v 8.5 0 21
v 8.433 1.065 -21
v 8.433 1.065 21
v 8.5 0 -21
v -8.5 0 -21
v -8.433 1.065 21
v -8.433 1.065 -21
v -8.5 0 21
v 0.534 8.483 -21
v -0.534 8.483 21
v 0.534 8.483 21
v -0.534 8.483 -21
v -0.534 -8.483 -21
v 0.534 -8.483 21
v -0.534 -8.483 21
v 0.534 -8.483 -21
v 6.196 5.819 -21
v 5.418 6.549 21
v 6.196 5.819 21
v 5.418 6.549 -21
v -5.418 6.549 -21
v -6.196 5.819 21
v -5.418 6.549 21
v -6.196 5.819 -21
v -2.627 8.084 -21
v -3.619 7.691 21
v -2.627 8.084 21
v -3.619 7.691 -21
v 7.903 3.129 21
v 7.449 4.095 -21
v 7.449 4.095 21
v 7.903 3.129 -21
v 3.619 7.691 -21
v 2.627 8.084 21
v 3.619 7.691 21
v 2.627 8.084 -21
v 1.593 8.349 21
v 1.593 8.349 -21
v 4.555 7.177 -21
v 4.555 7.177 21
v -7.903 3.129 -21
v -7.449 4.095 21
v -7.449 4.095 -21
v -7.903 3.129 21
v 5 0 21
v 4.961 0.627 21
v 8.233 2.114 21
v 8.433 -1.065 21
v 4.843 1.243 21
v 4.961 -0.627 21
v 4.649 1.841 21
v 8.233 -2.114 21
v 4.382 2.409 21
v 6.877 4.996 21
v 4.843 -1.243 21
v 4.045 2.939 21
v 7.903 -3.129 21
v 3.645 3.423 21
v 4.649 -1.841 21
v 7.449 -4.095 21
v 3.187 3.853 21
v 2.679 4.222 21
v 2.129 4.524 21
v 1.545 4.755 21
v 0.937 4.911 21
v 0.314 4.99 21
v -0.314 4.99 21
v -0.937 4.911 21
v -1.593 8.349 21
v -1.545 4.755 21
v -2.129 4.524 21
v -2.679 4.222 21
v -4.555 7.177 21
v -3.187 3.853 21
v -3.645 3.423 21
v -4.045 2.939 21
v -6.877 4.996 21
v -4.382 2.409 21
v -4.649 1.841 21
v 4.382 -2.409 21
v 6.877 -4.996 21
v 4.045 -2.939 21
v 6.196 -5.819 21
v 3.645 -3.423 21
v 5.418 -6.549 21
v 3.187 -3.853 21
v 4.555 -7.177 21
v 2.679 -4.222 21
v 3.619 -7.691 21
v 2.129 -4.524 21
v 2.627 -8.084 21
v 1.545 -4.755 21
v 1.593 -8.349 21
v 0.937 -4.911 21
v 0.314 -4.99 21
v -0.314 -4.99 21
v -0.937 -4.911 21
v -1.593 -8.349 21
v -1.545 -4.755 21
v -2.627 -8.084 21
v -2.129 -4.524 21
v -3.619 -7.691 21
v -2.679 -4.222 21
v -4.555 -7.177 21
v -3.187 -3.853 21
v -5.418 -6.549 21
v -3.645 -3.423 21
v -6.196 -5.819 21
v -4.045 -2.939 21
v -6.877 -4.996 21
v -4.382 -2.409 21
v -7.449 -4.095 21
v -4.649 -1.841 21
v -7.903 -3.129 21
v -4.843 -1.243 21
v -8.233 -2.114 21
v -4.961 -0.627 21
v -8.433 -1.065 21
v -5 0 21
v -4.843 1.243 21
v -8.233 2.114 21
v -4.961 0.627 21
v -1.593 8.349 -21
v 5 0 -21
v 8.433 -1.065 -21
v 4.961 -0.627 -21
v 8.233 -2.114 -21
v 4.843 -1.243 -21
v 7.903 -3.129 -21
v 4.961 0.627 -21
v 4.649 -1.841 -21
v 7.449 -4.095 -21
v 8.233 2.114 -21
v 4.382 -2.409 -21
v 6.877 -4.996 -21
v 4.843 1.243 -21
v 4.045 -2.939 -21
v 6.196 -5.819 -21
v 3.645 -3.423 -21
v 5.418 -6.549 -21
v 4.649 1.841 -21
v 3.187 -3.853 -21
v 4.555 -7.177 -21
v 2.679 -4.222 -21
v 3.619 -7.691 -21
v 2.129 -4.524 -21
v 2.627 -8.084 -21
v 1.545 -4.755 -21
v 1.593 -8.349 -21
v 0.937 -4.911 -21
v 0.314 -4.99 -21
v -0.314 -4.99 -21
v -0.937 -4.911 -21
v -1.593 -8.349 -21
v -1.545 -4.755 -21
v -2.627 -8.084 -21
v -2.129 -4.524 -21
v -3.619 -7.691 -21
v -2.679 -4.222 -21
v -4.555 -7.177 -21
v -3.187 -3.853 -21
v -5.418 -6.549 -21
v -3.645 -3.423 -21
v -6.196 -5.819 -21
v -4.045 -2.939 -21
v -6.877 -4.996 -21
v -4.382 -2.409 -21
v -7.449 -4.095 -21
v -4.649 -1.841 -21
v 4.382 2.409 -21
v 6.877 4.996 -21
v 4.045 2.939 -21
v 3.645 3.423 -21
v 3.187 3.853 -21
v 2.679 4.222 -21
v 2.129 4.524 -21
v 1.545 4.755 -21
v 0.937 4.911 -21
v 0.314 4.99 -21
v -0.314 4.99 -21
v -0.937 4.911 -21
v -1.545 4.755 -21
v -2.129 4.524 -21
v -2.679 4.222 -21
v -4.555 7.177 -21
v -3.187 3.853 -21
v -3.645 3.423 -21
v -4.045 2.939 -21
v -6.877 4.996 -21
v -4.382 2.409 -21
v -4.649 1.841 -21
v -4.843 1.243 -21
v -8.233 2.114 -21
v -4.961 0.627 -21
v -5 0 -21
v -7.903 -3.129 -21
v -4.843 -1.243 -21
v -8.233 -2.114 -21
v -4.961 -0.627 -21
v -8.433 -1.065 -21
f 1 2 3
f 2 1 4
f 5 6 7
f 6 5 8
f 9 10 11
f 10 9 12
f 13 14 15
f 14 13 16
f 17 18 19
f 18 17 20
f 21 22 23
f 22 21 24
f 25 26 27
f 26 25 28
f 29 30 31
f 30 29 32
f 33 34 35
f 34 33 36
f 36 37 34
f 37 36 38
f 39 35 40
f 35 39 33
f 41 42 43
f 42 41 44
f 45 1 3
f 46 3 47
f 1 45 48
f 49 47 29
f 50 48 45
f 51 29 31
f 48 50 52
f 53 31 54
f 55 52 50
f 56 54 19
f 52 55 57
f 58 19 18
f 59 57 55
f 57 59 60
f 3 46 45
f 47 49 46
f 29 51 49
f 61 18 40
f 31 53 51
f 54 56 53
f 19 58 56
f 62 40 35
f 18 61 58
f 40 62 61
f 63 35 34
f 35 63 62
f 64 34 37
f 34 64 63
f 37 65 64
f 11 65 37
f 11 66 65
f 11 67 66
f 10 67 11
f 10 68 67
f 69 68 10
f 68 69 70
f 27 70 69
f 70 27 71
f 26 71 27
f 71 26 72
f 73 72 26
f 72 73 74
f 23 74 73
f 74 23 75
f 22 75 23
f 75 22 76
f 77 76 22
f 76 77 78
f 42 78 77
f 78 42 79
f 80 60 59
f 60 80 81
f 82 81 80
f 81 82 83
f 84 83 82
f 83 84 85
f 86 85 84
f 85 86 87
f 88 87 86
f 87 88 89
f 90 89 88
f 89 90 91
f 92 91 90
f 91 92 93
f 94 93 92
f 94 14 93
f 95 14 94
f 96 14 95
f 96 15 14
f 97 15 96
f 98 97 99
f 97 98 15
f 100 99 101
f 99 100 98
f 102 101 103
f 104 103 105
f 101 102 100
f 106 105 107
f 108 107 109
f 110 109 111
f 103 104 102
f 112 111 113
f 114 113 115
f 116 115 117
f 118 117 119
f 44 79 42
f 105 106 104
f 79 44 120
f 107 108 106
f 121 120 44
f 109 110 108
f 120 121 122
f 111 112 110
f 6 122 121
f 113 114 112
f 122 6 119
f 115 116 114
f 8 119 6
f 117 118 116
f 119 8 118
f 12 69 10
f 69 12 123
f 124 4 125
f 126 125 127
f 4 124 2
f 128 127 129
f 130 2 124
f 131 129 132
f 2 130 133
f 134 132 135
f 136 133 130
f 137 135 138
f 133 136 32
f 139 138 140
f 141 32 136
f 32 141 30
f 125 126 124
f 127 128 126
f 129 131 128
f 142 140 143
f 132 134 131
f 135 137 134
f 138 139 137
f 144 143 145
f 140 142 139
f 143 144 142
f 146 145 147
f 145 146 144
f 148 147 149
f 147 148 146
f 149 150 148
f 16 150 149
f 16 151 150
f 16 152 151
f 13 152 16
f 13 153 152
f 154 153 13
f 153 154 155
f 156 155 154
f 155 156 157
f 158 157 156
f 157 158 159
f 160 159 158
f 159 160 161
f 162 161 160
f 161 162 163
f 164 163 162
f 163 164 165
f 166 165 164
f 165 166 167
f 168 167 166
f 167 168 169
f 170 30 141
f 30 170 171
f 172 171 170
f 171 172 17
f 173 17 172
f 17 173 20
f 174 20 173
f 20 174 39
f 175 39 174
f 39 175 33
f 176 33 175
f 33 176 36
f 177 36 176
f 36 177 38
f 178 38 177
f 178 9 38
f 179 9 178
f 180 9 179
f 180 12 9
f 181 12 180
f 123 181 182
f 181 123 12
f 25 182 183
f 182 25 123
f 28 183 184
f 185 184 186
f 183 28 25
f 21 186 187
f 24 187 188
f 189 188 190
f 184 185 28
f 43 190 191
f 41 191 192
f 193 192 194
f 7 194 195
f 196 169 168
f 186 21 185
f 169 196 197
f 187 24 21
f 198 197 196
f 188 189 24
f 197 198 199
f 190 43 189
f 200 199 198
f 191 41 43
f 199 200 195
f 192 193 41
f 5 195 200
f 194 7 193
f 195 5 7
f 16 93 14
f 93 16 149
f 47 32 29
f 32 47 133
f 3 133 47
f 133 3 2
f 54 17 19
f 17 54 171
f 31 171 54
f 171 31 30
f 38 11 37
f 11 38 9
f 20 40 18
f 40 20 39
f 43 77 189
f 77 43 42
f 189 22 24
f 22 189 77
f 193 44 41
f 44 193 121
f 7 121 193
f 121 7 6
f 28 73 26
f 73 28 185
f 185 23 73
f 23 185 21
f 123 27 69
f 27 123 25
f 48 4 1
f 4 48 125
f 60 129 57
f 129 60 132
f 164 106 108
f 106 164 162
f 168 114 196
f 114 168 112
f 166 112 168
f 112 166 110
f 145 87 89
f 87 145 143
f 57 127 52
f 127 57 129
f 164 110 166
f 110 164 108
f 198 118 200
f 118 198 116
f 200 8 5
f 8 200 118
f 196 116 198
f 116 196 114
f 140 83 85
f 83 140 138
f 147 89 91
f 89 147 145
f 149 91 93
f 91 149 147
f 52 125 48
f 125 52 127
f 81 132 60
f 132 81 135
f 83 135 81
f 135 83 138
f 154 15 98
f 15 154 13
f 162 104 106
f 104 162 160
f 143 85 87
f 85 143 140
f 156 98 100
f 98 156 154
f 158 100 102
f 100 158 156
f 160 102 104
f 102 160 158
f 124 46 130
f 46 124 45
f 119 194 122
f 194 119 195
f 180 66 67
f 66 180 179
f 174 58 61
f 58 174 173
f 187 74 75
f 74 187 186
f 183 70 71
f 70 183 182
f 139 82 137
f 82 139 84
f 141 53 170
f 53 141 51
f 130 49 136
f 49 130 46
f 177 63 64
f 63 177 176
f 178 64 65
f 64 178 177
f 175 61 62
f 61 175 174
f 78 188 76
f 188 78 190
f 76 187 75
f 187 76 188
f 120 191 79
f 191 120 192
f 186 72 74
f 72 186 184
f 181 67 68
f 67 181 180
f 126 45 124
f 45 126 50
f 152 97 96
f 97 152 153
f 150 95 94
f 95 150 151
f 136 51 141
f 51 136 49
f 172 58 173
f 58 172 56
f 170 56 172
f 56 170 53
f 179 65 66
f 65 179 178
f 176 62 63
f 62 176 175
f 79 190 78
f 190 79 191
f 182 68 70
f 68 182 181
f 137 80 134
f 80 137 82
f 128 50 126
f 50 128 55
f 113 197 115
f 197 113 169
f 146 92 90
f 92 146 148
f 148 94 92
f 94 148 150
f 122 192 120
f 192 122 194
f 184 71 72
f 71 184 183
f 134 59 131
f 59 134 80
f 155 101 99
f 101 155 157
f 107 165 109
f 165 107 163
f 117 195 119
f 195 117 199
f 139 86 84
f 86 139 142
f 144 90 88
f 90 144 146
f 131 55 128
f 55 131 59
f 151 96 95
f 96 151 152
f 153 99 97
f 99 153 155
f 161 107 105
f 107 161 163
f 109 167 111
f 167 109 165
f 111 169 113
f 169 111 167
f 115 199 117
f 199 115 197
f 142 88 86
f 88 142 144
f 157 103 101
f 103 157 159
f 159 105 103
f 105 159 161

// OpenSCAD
$fn = 50;


difference() {
	union() {
		translate(v = [0, 0, -21.0000000000]) {
			cylinder(h = 42, r = 8.5000000000);
		}
	}
	union() {
		translate(v = [0, 0, -100.0000000000]) {
			cylinder(h = 200, r = 5.0000000000);
		}
	}
}
